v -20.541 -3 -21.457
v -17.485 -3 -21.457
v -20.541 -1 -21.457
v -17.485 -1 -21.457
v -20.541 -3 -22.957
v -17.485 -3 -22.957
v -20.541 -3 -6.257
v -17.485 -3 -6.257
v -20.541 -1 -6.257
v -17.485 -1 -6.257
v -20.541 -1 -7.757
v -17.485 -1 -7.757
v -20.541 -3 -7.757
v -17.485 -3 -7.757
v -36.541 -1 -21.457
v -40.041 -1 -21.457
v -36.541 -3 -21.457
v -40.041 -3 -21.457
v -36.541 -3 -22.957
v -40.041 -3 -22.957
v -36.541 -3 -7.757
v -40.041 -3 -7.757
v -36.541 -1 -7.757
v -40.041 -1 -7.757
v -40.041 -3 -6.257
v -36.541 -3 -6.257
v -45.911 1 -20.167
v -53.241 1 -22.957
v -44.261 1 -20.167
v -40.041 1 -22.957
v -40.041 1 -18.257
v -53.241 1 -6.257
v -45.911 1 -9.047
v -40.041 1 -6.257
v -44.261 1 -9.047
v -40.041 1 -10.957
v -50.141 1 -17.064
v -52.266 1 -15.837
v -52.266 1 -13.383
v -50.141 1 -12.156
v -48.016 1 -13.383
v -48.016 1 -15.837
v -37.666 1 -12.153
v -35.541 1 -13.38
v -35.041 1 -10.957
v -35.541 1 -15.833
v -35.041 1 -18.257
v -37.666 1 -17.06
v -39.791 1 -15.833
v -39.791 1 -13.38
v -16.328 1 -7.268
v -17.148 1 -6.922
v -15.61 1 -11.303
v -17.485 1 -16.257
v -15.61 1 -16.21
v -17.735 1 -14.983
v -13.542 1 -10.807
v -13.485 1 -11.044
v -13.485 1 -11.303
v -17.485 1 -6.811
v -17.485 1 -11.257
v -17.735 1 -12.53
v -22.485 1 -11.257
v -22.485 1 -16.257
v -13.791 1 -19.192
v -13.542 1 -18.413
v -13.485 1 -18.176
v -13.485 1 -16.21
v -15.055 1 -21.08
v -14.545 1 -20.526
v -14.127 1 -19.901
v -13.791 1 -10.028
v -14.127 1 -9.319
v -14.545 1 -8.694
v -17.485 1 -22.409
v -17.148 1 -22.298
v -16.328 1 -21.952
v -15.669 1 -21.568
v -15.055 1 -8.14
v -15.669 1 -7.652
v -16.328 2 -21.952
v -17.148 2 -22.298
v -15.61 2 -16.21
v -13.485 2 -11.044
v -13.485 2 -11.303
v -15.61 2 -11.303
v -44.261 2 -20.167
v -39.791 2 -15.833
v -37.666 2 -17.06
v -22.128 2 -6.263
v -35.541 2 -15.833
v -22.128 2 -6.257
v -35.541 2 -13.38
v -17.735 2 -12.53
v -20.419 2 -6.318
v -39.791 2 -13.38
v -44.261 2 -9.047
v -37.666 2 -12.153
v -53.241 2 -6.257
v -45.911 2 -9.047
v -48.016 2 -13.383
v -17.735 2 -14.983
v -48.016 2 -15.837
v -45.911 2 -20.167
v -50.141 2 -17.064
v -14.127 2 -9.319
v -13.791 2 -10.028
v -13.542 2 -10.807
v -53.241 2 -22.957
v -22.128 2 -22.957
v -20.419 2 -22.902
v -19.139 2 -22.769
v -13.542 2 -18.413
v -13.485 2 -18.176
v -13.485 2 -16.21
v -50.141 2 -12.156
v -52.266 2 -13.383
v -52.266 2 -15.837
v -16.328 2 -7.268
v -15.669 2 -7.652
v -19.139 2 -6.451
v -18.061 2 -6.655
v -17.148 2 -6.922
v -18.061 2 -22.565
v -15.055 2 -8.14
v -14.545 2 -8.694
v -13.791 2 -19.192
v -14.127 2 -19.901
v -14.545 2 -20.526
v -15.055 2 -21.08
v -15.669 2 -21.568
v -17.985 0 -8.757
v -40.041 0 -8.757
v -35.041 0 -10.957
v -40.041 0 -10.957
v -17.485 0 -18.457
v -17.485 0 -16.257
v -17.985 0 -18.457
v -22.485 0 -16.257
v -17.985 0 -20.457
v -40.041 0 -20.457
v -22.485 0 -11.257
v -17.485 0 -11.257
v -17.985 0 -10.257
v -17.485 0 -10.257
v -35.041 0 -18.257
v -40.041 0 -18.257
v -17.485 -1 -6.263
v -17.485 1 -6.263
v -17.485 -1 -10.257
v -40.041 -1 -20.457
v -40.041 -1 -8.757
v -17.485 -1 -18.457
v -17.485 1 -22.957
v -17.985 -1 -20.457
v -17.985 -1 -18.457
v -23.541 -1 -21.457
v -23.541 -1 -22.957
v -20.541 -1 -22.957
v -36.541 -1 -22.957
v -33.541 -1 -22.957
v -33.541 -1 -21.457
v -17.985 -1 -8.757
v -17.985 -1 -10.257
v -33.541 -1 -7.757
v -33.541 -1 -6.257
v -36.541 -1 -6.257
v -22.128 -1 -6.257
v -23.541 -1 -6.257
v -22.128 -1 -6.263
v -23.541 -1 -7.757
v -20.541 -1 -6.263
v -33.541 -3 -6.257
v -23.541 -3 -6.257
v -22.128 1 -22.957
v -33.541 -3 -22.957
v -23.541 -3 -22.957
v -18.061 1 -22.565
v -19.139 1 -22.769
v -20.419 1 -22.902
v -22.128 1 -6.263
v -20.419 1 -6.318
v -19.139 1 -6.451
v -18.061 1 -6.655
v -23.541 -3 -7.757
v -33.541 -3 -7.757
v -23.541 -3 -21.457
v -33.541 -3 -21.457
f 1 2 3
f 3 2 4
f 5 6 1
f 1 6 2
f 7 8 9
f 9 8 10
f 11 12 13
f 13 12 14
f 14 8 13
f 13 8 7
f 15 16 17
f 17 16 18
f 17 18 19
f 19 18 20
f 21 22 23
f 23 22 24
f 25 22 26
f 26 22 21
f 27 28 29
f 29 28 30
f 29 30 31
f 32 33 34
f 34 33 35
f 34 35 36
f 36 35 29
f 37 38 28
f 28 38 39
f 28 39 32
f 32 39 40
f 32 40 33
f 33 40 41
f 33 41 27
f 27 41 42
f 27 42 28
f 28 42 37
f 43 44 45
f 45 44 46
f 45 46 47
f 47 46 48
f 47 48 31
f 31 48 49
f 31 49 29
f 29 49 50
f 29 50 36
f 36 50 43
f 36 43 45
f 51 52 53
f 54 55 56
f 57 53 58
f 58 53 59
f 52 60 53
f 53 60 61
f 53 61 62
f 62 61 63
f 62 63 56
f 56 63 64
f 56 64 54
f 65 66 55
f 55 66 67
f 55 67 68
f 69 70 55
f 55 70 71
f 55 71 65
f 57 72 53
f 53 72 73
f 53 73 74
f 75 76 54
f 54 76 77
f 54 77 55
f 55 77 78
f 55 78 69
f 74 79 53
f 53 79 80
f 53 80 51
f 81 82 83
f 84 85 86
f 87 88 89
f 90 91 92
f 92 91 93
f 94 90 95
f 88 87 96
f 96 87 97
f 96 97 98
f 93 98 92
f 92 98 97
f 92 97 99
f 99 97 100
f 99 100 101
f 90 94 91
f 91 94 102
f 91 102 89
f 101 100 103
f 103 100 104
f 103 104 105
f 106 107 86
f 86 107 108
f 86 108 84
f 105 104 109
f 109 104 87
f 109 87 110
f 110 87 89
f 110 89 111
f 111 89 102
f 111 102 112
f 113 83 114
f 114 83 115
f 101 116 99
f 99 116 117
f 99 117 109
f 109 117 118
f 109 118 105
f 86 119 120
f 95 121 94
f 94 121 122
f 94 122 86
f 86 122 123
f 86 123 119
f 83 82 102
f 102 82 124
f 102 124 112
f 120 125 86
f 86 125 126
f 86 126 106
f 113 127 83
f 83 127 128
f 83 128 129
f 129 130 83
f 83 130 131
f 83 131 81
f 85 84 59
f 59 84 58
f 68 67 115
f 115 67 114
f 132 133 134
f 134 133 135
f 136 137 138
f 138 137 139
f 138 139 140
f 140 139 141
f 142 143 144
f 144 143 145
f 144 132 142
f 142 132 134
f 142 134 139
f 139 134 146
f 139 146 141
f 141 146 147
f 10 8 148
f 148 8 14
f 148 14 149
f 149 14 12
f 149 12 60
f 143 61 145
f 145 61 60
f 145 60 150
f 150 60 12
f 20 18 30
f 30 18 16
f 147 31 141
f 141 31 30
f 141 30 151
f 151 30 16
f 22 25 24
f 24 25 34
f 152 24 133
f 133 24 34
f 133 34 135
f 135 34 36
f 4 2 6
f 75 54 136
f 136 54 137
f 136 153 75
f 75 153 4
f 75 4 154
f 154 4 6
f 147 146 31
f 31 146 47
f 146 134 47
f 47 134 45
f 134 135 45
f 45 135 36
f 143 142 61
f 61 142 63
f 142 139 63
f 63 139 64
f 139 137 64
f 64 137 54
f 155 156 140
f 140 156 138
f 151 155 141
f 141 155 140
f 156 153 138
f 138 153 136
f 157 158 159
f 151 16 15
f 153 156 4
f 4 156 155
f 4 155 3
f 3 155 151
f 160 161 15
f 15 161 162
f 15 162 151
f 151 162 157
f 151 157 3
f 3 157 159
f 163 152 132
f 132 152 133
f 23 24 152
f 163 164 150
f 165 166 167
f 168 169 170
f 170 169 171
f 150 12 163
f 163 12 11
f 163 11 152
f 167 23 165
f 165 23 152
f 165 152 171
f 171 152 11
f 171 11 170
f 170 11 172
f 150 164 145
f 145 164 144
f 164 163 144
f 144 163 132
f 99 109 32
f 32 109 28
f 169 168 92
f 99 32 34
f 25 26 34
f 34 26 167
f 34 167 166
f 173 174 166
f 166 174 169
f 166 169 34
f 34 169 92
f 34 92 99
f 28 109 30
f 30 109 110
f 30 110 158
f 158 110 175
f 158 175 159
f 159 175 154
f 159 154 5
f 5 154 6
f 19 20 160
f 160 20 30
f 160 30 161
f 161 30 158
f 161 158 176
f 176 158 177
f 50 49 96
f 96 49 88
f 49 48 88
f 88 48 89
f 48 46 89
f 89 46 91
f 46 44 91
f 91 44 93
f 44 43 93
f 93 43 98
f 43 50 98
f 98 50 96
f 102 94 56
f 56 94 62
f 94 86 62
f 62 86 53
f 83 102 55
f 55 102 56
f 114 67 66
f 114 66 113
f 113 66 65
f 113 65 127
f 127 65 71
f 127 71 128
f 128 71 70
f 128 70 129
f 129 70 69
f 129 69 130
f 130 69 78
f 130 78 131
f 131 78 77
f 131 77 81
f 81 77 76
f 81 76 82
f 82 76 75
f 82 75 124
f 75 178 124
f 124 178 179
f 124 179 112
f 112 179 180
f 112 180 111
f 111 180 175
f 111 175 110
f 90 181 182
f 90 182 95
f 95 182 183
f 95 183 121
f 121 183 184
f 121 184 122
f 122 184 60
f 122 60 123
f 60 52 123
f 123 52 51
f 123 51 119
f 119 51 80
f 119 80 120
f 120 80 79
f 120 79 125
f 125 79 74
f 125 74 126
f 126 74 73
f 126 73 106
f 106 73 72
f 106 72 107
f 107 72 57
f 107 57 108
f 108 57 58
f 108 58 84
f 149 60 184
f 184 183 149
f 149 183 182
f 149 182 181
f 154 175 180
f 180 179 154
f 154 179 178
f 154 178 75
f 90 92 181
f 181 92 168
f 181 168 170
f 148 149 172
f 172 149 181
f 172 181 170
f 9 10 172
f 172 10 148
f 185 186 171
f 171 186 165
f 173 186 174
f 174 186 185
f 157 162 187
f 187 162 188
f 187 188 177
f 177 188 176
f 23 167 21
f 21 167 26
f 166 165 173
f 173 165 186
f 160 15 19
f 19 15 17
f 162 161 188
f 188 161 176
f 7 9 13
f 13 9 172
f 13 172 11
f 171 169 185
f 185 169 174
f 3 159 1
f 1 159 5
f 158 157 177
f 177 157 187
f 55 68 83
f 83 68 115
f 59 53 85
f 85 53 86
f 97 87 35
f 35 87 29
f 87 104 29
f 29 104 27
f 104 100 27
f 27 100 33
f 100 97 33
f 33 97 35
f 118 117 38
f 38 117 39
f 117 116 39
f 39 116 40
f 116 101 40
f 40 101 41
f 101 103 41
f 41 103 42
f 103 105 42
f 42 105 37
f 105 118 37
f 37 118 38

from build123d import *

# Parameters (mm, degrees)
SKETCH1_W              = 22.5552
SKETCH1_H              = 12.7
BOSS_EXTRUDE1_DEPTH    = 1
SKETCH2_W              = 5
SKETCH2_H              = 7.3
CUT_EXTRUDE1_DEPTH     = 1
SKETCH3_W              = 5
SKETCH3_H              = 5
CUT_EXTRUDE2_DEPTH     = 1
SKETCH4_W              = 22.0552
SKETCH4_H              = 0.5
SKETCH4_W_2            = 0.5
SKETCH4_H_2            = 1.5
SKETCH4_H_3            = 2
BOSS_EXTRUDE2_DEPTH    = 1
SKETCH5_W              = 39.7552
SKETCH5_H              = 16.7
BOSS_EXTRUDE3_DEPTH    = 1
CUT_EXTRUDE3_DEPTH     = 1
CUT_EXTRUDE4_DEPTH     = 1
CUT_EXTRUDE5_START     = -4
CUT_EXTRUDE5_DEPTH     = 5
SKETCH10_W             = 22.5552
SKETCH10_H             = 2
BOSS_EXTRUDE4_DEPTH    = 2
SKETCH11_W             = 8.919893548
SKETCH11_H             = 0.730490532
CUT_EXTRUDE6_DEPTH     = 3
SKETCH12_W             = 22.5552
SKETCH12_H             = 1.5
BOSS_EXTRUDE5_DEPTH    = 2
SKETCH13_W             = 3
SKETCH13_H             = 1.5
CUT_EXTRUDE7_DEPTH     = 2
SKETCH14_W             = 2.125
SKETCH14_H             = 1.226869322
CUT_EXTRUDE8_DEPTH     = 1
SKETCH15_W             = 1.65
SKETCH15_H             = 11.12
ADAPTER_PCB_HOLE_DEPTH = 1
CUT_EXTRUDE10_DEPTH    = 1


with BuildPart() as part:
    # Sketch1 → Boss-Extrude1 (new body)
    with BuildSketch(Plane(origin=(0, 0, 0), x_dir=(1, 0, 0), z_dir=(0, 1, 0))):
        with Locations((-28.763088774, 14.606547542)):
            Rectangle(SKETCH1_W, SKETCH1_H)
    extrude(amount=BOSS_EXTRUDE1_DEPTH)

    # Sketch2 → Cut-Extrude1 (cut)
    with BuildSketch(Plane(origin=(0, 1, 0), x_dir=(1, 0, 0), z_dir=(0, 1, 0))):
        with Locations((-37.540688774, 14.606547542)):
            Rectangle(SKETCH2_W, SKETCH2_H)
    extrude(amount=-CUT_EXTRUDE1_DEPTH, mode=Mode.SUBTRACT)

    # Sketch3 → Cut-Extrude2 (cut)
    with BuildSketch(Plane(origin=(0, 1, 0), x_dir=(1, 0, 0), z_dir=(0, 1, 0))):
        with Locations((-19.985488774, 13.756547542)):
            Rectangle(SKETCH3_W, SKETCH3_H)
    extrude(amount=-CUT_EXTRUDE2_DEPTH, mode=Mode.SUBTRACT)

    # Sketch4 → Boss-Extrude2 (add)
    with BuildSketch(Plane.XZ):
        with Locations((-29.013088774, -8.506547542)):
            Rectangle(SKETCH4_W, SKETCH4_H)
        with Locations((-17.735488774, -8.506547542)):
            Rectangle(SKETCH4_W_2, SKETCH4_H)
        with Locations((-17.735488774, -9.506547542)):
            Rectangle(SKETCH4_W_2, SKETCH4_H_2)
        with Locations((-29.013088774, -20.706547542)):
            Rectangle(SKETCH4_W, SKETCH4_H)
        with Locations((-17.735488774, -19.456547542)):
            Rectangle(SKETCH4_W_2, SKETCH4_H_3)
        with Locations((-17.735488774, -20.706547542)):
            Rectangle(SKETCH4_W_2, SKETCH4_H)
    extrude(amount=BOSS_EXTRUDE2_DEPTH)

    # Sketch5 → Boss-Extrude3 (add)
    with BuildSketch(Plane(origin=(0, 1, 0), x_dir=(1, 0, 0), z_dir=(0, 1, 0))):
        with Locations((-33.363088774, 14.606547542)):
            Rectangle(SKETCH5_W, SKETCH5_H)
    extrude(amount=BOSS_EXTRUDE3_DEPTH)

    # Sketch6 → Cut-Extrude3 (cut)
    with BuildSketch(Plane(origin=(0, 2, 0), x_dir=(1, 0, 0), z_dir=(0, 1, 0))):
        Polygon((-39.790688774, 13.37967822), (-37.665688774, 12.152808898), (-35.540688774, 13.37967822), (-35.540688774, 15.833416864), (-37.665688774, 17.060286186), (-39.790688774, 15.833416864), align=None)
    extrude(amount=-CUT_EXTRUDE3_DEPTH, mode=Mode.SUBTRACT)

    # Sketch7 → Cut-Extrude4 (cut)
    with BuildSketch(Plane(origin=(0, 1, 0), x_dir=(-1, 0, 0), z_dir=(0, -1, 0))):
        Polygon((17.735488774, 14.983416864), (15.610488774, 16.210286186), (13.485488774, 14.983416864), (13.485488774, 12.52967822), (15.610488774, 11.302808898), (17.735488774, 12.52967822), align=None)
    extrude(amount=-CUT_EXTRUDE4_DEPTH, mode=Mode.SUBTRACT)

    # Sketch8 → Cut-Extrude5 (cut)
    with BuildSketch(Plane(origin=(0, 2, 0), x_dir=(1, 0, 0), z_dir=(0, 1, 0)).offset(CUT_EXTRUDE5_START)):
        with BuildLine():
            Line((-13.485488774, 22.956547542), (-22.127760886, 22.956547542))
            add(Edge.make_bspline(
                [(-22.127760886, 22.956547542), (-17.367981555, 22.956547542), (-14.30272025, 21.87197064), (-13.485488774, 18.176213027)],
                knots=[0, 0, 0, 0, 1, 1, 1, 1], degree=3))
            Line((-13.485488774, 18.176213027), (-13.485488774, 22.956547542))
        make_face()
    cut_extrude5 = extrude(amount=CUT_EXTRUDE5_DEPTH, mode=Mode.SUBTRACT)

    # Mirror2: Cut-Extrude5 across plane
    add(cut_extrude5.mirror(Plane.XY.offset(-14.61)), mode=Mode.SUBTRACT)

    # Sketch10 → Boss-Extrude4 (add)
    with BuildSketch(Plane(origin=(0, 1, 0), x_dir=(-1, 0, 0), z_dir=(0, -1, 0))):
        with Locations((28.763088774, 7.256547542)):
            Rectangle(SKETCH10_W, SKETCH10_H)
        with Locations((28.763088774, 21.956547542)):
            Rectangle(SKETCH10_W, SKETCH10_H)
    extrude(amount=BOSS_EXTRUDE4_DEPTH)

    # Sketch11 → Cut-Extrude6 (cut)
    with BuildSketch(Plane(origin=(0, 2, 0), x_dir=(1, 0, 0), z_dir=(0, 1, 0))):
        with Locations((-17.667814112, 5.898207192)):
            Rectangle(SKETCH11_W, SKETCH11_H)
    extrude(amount=-CUT_EXTRUDE6_DEPTH, mode=Mode.SUBTRACT)

    # Sketch12 → Boss-Extrude5 (add)
    with BuildSketch(Plane(origin=(0, -1, 0), x_dir=(-1, 0, 0), z_dir=(0, -1, 0))):
        with Locations((28.763088774, 7.006547542)):
            Rectangle(SKETCH12_W, SKETCH12_H)
        with Locations((28.763088774, 22.206547542)):
            Rectangle(SKETCH12_W, SKETCH12_H)
    extrude(amount=BOSS_EXTRUDE5_DEPTH)

    # Sketch13 → Cut-Extrude7 (cut)
    with BuildSketch(Plane(origin=(0, -3, 0), x_dir=(-1, 0, 0), z_dir=(0, -1, 0))):
        with Locations((35.040688774, 7.006547542)):
            Rectangle(SKETCH13_W, SKETCH13_H)
        with Locations((35.040688774, 22.206547542)):
            Rectangle(SKETCH13_W, SKETCH13_H)
        with Locations((22.040688774, 7.006547542)):
            Rectangle(SKETCH13_W, SKETCH13_H)
        with Locations((22.040688774, 22.206547542)):
            Rectangle(SKETCH13_W, SKETCH13_H)
    extrude(amount=-CUT_EXTRUDE7_DEPTH, mode=Mode.SUBTRACT)

    # Sketch14 → Cut-Extrude8 (cut)
    with BuildSketch(Plane(origin=(0, 2, 0), x_dir=(1, 0, 0), z_dir=(0, 1, 0))):
        with Locations((-14.547988774, 15.596851525)):
            Rectangle(SKETCH14_W, SKETCH14_H)
        with Locations((-14.547988774, 11.916243559)):
            Rectangle(SKETCH14_W, SKETCH14_H)
    extrude(amount=-CUT_EXTRUDE8_DEPTH, mode=Mode.SUBTRACT)

    # Sketch15 → adapter_PCB_hole (cut)
    with BuildSketch(Plane(origin=(0, 1, 0), x_dir=(-1, 0, 0), z_dir=(0, -1, 0))):
        with Locations((45.085688774, 14.606547542)):
            Rectangle(SKETCH15_W, SKETCH15_H)
    extrude(amount=-ADAPTER_PCB_HOLE_DEPTH, mode=Mode.SUBTRACT)

    # Sketch22 → Cut-Extrude10 (cut)
    with BuildSketch(Plane(origin=(0, 1, 0), x_dir=(-1, 0, 0), z_dir=(0, -1, 0))):
        Polygon((52.265688774, 15.836869322), (50.140688774, 17.063738644), (48.015688774, 15.836869322), (48.015688774, 13.383130678), (50.140688774, 12.156261356), (52.265688774, 13.383130678), align=None)
    extrude(amount=-CUT_EXTRUDE10_DEPTH, mode=Mode.SUBTRACT)


solid = part.part
